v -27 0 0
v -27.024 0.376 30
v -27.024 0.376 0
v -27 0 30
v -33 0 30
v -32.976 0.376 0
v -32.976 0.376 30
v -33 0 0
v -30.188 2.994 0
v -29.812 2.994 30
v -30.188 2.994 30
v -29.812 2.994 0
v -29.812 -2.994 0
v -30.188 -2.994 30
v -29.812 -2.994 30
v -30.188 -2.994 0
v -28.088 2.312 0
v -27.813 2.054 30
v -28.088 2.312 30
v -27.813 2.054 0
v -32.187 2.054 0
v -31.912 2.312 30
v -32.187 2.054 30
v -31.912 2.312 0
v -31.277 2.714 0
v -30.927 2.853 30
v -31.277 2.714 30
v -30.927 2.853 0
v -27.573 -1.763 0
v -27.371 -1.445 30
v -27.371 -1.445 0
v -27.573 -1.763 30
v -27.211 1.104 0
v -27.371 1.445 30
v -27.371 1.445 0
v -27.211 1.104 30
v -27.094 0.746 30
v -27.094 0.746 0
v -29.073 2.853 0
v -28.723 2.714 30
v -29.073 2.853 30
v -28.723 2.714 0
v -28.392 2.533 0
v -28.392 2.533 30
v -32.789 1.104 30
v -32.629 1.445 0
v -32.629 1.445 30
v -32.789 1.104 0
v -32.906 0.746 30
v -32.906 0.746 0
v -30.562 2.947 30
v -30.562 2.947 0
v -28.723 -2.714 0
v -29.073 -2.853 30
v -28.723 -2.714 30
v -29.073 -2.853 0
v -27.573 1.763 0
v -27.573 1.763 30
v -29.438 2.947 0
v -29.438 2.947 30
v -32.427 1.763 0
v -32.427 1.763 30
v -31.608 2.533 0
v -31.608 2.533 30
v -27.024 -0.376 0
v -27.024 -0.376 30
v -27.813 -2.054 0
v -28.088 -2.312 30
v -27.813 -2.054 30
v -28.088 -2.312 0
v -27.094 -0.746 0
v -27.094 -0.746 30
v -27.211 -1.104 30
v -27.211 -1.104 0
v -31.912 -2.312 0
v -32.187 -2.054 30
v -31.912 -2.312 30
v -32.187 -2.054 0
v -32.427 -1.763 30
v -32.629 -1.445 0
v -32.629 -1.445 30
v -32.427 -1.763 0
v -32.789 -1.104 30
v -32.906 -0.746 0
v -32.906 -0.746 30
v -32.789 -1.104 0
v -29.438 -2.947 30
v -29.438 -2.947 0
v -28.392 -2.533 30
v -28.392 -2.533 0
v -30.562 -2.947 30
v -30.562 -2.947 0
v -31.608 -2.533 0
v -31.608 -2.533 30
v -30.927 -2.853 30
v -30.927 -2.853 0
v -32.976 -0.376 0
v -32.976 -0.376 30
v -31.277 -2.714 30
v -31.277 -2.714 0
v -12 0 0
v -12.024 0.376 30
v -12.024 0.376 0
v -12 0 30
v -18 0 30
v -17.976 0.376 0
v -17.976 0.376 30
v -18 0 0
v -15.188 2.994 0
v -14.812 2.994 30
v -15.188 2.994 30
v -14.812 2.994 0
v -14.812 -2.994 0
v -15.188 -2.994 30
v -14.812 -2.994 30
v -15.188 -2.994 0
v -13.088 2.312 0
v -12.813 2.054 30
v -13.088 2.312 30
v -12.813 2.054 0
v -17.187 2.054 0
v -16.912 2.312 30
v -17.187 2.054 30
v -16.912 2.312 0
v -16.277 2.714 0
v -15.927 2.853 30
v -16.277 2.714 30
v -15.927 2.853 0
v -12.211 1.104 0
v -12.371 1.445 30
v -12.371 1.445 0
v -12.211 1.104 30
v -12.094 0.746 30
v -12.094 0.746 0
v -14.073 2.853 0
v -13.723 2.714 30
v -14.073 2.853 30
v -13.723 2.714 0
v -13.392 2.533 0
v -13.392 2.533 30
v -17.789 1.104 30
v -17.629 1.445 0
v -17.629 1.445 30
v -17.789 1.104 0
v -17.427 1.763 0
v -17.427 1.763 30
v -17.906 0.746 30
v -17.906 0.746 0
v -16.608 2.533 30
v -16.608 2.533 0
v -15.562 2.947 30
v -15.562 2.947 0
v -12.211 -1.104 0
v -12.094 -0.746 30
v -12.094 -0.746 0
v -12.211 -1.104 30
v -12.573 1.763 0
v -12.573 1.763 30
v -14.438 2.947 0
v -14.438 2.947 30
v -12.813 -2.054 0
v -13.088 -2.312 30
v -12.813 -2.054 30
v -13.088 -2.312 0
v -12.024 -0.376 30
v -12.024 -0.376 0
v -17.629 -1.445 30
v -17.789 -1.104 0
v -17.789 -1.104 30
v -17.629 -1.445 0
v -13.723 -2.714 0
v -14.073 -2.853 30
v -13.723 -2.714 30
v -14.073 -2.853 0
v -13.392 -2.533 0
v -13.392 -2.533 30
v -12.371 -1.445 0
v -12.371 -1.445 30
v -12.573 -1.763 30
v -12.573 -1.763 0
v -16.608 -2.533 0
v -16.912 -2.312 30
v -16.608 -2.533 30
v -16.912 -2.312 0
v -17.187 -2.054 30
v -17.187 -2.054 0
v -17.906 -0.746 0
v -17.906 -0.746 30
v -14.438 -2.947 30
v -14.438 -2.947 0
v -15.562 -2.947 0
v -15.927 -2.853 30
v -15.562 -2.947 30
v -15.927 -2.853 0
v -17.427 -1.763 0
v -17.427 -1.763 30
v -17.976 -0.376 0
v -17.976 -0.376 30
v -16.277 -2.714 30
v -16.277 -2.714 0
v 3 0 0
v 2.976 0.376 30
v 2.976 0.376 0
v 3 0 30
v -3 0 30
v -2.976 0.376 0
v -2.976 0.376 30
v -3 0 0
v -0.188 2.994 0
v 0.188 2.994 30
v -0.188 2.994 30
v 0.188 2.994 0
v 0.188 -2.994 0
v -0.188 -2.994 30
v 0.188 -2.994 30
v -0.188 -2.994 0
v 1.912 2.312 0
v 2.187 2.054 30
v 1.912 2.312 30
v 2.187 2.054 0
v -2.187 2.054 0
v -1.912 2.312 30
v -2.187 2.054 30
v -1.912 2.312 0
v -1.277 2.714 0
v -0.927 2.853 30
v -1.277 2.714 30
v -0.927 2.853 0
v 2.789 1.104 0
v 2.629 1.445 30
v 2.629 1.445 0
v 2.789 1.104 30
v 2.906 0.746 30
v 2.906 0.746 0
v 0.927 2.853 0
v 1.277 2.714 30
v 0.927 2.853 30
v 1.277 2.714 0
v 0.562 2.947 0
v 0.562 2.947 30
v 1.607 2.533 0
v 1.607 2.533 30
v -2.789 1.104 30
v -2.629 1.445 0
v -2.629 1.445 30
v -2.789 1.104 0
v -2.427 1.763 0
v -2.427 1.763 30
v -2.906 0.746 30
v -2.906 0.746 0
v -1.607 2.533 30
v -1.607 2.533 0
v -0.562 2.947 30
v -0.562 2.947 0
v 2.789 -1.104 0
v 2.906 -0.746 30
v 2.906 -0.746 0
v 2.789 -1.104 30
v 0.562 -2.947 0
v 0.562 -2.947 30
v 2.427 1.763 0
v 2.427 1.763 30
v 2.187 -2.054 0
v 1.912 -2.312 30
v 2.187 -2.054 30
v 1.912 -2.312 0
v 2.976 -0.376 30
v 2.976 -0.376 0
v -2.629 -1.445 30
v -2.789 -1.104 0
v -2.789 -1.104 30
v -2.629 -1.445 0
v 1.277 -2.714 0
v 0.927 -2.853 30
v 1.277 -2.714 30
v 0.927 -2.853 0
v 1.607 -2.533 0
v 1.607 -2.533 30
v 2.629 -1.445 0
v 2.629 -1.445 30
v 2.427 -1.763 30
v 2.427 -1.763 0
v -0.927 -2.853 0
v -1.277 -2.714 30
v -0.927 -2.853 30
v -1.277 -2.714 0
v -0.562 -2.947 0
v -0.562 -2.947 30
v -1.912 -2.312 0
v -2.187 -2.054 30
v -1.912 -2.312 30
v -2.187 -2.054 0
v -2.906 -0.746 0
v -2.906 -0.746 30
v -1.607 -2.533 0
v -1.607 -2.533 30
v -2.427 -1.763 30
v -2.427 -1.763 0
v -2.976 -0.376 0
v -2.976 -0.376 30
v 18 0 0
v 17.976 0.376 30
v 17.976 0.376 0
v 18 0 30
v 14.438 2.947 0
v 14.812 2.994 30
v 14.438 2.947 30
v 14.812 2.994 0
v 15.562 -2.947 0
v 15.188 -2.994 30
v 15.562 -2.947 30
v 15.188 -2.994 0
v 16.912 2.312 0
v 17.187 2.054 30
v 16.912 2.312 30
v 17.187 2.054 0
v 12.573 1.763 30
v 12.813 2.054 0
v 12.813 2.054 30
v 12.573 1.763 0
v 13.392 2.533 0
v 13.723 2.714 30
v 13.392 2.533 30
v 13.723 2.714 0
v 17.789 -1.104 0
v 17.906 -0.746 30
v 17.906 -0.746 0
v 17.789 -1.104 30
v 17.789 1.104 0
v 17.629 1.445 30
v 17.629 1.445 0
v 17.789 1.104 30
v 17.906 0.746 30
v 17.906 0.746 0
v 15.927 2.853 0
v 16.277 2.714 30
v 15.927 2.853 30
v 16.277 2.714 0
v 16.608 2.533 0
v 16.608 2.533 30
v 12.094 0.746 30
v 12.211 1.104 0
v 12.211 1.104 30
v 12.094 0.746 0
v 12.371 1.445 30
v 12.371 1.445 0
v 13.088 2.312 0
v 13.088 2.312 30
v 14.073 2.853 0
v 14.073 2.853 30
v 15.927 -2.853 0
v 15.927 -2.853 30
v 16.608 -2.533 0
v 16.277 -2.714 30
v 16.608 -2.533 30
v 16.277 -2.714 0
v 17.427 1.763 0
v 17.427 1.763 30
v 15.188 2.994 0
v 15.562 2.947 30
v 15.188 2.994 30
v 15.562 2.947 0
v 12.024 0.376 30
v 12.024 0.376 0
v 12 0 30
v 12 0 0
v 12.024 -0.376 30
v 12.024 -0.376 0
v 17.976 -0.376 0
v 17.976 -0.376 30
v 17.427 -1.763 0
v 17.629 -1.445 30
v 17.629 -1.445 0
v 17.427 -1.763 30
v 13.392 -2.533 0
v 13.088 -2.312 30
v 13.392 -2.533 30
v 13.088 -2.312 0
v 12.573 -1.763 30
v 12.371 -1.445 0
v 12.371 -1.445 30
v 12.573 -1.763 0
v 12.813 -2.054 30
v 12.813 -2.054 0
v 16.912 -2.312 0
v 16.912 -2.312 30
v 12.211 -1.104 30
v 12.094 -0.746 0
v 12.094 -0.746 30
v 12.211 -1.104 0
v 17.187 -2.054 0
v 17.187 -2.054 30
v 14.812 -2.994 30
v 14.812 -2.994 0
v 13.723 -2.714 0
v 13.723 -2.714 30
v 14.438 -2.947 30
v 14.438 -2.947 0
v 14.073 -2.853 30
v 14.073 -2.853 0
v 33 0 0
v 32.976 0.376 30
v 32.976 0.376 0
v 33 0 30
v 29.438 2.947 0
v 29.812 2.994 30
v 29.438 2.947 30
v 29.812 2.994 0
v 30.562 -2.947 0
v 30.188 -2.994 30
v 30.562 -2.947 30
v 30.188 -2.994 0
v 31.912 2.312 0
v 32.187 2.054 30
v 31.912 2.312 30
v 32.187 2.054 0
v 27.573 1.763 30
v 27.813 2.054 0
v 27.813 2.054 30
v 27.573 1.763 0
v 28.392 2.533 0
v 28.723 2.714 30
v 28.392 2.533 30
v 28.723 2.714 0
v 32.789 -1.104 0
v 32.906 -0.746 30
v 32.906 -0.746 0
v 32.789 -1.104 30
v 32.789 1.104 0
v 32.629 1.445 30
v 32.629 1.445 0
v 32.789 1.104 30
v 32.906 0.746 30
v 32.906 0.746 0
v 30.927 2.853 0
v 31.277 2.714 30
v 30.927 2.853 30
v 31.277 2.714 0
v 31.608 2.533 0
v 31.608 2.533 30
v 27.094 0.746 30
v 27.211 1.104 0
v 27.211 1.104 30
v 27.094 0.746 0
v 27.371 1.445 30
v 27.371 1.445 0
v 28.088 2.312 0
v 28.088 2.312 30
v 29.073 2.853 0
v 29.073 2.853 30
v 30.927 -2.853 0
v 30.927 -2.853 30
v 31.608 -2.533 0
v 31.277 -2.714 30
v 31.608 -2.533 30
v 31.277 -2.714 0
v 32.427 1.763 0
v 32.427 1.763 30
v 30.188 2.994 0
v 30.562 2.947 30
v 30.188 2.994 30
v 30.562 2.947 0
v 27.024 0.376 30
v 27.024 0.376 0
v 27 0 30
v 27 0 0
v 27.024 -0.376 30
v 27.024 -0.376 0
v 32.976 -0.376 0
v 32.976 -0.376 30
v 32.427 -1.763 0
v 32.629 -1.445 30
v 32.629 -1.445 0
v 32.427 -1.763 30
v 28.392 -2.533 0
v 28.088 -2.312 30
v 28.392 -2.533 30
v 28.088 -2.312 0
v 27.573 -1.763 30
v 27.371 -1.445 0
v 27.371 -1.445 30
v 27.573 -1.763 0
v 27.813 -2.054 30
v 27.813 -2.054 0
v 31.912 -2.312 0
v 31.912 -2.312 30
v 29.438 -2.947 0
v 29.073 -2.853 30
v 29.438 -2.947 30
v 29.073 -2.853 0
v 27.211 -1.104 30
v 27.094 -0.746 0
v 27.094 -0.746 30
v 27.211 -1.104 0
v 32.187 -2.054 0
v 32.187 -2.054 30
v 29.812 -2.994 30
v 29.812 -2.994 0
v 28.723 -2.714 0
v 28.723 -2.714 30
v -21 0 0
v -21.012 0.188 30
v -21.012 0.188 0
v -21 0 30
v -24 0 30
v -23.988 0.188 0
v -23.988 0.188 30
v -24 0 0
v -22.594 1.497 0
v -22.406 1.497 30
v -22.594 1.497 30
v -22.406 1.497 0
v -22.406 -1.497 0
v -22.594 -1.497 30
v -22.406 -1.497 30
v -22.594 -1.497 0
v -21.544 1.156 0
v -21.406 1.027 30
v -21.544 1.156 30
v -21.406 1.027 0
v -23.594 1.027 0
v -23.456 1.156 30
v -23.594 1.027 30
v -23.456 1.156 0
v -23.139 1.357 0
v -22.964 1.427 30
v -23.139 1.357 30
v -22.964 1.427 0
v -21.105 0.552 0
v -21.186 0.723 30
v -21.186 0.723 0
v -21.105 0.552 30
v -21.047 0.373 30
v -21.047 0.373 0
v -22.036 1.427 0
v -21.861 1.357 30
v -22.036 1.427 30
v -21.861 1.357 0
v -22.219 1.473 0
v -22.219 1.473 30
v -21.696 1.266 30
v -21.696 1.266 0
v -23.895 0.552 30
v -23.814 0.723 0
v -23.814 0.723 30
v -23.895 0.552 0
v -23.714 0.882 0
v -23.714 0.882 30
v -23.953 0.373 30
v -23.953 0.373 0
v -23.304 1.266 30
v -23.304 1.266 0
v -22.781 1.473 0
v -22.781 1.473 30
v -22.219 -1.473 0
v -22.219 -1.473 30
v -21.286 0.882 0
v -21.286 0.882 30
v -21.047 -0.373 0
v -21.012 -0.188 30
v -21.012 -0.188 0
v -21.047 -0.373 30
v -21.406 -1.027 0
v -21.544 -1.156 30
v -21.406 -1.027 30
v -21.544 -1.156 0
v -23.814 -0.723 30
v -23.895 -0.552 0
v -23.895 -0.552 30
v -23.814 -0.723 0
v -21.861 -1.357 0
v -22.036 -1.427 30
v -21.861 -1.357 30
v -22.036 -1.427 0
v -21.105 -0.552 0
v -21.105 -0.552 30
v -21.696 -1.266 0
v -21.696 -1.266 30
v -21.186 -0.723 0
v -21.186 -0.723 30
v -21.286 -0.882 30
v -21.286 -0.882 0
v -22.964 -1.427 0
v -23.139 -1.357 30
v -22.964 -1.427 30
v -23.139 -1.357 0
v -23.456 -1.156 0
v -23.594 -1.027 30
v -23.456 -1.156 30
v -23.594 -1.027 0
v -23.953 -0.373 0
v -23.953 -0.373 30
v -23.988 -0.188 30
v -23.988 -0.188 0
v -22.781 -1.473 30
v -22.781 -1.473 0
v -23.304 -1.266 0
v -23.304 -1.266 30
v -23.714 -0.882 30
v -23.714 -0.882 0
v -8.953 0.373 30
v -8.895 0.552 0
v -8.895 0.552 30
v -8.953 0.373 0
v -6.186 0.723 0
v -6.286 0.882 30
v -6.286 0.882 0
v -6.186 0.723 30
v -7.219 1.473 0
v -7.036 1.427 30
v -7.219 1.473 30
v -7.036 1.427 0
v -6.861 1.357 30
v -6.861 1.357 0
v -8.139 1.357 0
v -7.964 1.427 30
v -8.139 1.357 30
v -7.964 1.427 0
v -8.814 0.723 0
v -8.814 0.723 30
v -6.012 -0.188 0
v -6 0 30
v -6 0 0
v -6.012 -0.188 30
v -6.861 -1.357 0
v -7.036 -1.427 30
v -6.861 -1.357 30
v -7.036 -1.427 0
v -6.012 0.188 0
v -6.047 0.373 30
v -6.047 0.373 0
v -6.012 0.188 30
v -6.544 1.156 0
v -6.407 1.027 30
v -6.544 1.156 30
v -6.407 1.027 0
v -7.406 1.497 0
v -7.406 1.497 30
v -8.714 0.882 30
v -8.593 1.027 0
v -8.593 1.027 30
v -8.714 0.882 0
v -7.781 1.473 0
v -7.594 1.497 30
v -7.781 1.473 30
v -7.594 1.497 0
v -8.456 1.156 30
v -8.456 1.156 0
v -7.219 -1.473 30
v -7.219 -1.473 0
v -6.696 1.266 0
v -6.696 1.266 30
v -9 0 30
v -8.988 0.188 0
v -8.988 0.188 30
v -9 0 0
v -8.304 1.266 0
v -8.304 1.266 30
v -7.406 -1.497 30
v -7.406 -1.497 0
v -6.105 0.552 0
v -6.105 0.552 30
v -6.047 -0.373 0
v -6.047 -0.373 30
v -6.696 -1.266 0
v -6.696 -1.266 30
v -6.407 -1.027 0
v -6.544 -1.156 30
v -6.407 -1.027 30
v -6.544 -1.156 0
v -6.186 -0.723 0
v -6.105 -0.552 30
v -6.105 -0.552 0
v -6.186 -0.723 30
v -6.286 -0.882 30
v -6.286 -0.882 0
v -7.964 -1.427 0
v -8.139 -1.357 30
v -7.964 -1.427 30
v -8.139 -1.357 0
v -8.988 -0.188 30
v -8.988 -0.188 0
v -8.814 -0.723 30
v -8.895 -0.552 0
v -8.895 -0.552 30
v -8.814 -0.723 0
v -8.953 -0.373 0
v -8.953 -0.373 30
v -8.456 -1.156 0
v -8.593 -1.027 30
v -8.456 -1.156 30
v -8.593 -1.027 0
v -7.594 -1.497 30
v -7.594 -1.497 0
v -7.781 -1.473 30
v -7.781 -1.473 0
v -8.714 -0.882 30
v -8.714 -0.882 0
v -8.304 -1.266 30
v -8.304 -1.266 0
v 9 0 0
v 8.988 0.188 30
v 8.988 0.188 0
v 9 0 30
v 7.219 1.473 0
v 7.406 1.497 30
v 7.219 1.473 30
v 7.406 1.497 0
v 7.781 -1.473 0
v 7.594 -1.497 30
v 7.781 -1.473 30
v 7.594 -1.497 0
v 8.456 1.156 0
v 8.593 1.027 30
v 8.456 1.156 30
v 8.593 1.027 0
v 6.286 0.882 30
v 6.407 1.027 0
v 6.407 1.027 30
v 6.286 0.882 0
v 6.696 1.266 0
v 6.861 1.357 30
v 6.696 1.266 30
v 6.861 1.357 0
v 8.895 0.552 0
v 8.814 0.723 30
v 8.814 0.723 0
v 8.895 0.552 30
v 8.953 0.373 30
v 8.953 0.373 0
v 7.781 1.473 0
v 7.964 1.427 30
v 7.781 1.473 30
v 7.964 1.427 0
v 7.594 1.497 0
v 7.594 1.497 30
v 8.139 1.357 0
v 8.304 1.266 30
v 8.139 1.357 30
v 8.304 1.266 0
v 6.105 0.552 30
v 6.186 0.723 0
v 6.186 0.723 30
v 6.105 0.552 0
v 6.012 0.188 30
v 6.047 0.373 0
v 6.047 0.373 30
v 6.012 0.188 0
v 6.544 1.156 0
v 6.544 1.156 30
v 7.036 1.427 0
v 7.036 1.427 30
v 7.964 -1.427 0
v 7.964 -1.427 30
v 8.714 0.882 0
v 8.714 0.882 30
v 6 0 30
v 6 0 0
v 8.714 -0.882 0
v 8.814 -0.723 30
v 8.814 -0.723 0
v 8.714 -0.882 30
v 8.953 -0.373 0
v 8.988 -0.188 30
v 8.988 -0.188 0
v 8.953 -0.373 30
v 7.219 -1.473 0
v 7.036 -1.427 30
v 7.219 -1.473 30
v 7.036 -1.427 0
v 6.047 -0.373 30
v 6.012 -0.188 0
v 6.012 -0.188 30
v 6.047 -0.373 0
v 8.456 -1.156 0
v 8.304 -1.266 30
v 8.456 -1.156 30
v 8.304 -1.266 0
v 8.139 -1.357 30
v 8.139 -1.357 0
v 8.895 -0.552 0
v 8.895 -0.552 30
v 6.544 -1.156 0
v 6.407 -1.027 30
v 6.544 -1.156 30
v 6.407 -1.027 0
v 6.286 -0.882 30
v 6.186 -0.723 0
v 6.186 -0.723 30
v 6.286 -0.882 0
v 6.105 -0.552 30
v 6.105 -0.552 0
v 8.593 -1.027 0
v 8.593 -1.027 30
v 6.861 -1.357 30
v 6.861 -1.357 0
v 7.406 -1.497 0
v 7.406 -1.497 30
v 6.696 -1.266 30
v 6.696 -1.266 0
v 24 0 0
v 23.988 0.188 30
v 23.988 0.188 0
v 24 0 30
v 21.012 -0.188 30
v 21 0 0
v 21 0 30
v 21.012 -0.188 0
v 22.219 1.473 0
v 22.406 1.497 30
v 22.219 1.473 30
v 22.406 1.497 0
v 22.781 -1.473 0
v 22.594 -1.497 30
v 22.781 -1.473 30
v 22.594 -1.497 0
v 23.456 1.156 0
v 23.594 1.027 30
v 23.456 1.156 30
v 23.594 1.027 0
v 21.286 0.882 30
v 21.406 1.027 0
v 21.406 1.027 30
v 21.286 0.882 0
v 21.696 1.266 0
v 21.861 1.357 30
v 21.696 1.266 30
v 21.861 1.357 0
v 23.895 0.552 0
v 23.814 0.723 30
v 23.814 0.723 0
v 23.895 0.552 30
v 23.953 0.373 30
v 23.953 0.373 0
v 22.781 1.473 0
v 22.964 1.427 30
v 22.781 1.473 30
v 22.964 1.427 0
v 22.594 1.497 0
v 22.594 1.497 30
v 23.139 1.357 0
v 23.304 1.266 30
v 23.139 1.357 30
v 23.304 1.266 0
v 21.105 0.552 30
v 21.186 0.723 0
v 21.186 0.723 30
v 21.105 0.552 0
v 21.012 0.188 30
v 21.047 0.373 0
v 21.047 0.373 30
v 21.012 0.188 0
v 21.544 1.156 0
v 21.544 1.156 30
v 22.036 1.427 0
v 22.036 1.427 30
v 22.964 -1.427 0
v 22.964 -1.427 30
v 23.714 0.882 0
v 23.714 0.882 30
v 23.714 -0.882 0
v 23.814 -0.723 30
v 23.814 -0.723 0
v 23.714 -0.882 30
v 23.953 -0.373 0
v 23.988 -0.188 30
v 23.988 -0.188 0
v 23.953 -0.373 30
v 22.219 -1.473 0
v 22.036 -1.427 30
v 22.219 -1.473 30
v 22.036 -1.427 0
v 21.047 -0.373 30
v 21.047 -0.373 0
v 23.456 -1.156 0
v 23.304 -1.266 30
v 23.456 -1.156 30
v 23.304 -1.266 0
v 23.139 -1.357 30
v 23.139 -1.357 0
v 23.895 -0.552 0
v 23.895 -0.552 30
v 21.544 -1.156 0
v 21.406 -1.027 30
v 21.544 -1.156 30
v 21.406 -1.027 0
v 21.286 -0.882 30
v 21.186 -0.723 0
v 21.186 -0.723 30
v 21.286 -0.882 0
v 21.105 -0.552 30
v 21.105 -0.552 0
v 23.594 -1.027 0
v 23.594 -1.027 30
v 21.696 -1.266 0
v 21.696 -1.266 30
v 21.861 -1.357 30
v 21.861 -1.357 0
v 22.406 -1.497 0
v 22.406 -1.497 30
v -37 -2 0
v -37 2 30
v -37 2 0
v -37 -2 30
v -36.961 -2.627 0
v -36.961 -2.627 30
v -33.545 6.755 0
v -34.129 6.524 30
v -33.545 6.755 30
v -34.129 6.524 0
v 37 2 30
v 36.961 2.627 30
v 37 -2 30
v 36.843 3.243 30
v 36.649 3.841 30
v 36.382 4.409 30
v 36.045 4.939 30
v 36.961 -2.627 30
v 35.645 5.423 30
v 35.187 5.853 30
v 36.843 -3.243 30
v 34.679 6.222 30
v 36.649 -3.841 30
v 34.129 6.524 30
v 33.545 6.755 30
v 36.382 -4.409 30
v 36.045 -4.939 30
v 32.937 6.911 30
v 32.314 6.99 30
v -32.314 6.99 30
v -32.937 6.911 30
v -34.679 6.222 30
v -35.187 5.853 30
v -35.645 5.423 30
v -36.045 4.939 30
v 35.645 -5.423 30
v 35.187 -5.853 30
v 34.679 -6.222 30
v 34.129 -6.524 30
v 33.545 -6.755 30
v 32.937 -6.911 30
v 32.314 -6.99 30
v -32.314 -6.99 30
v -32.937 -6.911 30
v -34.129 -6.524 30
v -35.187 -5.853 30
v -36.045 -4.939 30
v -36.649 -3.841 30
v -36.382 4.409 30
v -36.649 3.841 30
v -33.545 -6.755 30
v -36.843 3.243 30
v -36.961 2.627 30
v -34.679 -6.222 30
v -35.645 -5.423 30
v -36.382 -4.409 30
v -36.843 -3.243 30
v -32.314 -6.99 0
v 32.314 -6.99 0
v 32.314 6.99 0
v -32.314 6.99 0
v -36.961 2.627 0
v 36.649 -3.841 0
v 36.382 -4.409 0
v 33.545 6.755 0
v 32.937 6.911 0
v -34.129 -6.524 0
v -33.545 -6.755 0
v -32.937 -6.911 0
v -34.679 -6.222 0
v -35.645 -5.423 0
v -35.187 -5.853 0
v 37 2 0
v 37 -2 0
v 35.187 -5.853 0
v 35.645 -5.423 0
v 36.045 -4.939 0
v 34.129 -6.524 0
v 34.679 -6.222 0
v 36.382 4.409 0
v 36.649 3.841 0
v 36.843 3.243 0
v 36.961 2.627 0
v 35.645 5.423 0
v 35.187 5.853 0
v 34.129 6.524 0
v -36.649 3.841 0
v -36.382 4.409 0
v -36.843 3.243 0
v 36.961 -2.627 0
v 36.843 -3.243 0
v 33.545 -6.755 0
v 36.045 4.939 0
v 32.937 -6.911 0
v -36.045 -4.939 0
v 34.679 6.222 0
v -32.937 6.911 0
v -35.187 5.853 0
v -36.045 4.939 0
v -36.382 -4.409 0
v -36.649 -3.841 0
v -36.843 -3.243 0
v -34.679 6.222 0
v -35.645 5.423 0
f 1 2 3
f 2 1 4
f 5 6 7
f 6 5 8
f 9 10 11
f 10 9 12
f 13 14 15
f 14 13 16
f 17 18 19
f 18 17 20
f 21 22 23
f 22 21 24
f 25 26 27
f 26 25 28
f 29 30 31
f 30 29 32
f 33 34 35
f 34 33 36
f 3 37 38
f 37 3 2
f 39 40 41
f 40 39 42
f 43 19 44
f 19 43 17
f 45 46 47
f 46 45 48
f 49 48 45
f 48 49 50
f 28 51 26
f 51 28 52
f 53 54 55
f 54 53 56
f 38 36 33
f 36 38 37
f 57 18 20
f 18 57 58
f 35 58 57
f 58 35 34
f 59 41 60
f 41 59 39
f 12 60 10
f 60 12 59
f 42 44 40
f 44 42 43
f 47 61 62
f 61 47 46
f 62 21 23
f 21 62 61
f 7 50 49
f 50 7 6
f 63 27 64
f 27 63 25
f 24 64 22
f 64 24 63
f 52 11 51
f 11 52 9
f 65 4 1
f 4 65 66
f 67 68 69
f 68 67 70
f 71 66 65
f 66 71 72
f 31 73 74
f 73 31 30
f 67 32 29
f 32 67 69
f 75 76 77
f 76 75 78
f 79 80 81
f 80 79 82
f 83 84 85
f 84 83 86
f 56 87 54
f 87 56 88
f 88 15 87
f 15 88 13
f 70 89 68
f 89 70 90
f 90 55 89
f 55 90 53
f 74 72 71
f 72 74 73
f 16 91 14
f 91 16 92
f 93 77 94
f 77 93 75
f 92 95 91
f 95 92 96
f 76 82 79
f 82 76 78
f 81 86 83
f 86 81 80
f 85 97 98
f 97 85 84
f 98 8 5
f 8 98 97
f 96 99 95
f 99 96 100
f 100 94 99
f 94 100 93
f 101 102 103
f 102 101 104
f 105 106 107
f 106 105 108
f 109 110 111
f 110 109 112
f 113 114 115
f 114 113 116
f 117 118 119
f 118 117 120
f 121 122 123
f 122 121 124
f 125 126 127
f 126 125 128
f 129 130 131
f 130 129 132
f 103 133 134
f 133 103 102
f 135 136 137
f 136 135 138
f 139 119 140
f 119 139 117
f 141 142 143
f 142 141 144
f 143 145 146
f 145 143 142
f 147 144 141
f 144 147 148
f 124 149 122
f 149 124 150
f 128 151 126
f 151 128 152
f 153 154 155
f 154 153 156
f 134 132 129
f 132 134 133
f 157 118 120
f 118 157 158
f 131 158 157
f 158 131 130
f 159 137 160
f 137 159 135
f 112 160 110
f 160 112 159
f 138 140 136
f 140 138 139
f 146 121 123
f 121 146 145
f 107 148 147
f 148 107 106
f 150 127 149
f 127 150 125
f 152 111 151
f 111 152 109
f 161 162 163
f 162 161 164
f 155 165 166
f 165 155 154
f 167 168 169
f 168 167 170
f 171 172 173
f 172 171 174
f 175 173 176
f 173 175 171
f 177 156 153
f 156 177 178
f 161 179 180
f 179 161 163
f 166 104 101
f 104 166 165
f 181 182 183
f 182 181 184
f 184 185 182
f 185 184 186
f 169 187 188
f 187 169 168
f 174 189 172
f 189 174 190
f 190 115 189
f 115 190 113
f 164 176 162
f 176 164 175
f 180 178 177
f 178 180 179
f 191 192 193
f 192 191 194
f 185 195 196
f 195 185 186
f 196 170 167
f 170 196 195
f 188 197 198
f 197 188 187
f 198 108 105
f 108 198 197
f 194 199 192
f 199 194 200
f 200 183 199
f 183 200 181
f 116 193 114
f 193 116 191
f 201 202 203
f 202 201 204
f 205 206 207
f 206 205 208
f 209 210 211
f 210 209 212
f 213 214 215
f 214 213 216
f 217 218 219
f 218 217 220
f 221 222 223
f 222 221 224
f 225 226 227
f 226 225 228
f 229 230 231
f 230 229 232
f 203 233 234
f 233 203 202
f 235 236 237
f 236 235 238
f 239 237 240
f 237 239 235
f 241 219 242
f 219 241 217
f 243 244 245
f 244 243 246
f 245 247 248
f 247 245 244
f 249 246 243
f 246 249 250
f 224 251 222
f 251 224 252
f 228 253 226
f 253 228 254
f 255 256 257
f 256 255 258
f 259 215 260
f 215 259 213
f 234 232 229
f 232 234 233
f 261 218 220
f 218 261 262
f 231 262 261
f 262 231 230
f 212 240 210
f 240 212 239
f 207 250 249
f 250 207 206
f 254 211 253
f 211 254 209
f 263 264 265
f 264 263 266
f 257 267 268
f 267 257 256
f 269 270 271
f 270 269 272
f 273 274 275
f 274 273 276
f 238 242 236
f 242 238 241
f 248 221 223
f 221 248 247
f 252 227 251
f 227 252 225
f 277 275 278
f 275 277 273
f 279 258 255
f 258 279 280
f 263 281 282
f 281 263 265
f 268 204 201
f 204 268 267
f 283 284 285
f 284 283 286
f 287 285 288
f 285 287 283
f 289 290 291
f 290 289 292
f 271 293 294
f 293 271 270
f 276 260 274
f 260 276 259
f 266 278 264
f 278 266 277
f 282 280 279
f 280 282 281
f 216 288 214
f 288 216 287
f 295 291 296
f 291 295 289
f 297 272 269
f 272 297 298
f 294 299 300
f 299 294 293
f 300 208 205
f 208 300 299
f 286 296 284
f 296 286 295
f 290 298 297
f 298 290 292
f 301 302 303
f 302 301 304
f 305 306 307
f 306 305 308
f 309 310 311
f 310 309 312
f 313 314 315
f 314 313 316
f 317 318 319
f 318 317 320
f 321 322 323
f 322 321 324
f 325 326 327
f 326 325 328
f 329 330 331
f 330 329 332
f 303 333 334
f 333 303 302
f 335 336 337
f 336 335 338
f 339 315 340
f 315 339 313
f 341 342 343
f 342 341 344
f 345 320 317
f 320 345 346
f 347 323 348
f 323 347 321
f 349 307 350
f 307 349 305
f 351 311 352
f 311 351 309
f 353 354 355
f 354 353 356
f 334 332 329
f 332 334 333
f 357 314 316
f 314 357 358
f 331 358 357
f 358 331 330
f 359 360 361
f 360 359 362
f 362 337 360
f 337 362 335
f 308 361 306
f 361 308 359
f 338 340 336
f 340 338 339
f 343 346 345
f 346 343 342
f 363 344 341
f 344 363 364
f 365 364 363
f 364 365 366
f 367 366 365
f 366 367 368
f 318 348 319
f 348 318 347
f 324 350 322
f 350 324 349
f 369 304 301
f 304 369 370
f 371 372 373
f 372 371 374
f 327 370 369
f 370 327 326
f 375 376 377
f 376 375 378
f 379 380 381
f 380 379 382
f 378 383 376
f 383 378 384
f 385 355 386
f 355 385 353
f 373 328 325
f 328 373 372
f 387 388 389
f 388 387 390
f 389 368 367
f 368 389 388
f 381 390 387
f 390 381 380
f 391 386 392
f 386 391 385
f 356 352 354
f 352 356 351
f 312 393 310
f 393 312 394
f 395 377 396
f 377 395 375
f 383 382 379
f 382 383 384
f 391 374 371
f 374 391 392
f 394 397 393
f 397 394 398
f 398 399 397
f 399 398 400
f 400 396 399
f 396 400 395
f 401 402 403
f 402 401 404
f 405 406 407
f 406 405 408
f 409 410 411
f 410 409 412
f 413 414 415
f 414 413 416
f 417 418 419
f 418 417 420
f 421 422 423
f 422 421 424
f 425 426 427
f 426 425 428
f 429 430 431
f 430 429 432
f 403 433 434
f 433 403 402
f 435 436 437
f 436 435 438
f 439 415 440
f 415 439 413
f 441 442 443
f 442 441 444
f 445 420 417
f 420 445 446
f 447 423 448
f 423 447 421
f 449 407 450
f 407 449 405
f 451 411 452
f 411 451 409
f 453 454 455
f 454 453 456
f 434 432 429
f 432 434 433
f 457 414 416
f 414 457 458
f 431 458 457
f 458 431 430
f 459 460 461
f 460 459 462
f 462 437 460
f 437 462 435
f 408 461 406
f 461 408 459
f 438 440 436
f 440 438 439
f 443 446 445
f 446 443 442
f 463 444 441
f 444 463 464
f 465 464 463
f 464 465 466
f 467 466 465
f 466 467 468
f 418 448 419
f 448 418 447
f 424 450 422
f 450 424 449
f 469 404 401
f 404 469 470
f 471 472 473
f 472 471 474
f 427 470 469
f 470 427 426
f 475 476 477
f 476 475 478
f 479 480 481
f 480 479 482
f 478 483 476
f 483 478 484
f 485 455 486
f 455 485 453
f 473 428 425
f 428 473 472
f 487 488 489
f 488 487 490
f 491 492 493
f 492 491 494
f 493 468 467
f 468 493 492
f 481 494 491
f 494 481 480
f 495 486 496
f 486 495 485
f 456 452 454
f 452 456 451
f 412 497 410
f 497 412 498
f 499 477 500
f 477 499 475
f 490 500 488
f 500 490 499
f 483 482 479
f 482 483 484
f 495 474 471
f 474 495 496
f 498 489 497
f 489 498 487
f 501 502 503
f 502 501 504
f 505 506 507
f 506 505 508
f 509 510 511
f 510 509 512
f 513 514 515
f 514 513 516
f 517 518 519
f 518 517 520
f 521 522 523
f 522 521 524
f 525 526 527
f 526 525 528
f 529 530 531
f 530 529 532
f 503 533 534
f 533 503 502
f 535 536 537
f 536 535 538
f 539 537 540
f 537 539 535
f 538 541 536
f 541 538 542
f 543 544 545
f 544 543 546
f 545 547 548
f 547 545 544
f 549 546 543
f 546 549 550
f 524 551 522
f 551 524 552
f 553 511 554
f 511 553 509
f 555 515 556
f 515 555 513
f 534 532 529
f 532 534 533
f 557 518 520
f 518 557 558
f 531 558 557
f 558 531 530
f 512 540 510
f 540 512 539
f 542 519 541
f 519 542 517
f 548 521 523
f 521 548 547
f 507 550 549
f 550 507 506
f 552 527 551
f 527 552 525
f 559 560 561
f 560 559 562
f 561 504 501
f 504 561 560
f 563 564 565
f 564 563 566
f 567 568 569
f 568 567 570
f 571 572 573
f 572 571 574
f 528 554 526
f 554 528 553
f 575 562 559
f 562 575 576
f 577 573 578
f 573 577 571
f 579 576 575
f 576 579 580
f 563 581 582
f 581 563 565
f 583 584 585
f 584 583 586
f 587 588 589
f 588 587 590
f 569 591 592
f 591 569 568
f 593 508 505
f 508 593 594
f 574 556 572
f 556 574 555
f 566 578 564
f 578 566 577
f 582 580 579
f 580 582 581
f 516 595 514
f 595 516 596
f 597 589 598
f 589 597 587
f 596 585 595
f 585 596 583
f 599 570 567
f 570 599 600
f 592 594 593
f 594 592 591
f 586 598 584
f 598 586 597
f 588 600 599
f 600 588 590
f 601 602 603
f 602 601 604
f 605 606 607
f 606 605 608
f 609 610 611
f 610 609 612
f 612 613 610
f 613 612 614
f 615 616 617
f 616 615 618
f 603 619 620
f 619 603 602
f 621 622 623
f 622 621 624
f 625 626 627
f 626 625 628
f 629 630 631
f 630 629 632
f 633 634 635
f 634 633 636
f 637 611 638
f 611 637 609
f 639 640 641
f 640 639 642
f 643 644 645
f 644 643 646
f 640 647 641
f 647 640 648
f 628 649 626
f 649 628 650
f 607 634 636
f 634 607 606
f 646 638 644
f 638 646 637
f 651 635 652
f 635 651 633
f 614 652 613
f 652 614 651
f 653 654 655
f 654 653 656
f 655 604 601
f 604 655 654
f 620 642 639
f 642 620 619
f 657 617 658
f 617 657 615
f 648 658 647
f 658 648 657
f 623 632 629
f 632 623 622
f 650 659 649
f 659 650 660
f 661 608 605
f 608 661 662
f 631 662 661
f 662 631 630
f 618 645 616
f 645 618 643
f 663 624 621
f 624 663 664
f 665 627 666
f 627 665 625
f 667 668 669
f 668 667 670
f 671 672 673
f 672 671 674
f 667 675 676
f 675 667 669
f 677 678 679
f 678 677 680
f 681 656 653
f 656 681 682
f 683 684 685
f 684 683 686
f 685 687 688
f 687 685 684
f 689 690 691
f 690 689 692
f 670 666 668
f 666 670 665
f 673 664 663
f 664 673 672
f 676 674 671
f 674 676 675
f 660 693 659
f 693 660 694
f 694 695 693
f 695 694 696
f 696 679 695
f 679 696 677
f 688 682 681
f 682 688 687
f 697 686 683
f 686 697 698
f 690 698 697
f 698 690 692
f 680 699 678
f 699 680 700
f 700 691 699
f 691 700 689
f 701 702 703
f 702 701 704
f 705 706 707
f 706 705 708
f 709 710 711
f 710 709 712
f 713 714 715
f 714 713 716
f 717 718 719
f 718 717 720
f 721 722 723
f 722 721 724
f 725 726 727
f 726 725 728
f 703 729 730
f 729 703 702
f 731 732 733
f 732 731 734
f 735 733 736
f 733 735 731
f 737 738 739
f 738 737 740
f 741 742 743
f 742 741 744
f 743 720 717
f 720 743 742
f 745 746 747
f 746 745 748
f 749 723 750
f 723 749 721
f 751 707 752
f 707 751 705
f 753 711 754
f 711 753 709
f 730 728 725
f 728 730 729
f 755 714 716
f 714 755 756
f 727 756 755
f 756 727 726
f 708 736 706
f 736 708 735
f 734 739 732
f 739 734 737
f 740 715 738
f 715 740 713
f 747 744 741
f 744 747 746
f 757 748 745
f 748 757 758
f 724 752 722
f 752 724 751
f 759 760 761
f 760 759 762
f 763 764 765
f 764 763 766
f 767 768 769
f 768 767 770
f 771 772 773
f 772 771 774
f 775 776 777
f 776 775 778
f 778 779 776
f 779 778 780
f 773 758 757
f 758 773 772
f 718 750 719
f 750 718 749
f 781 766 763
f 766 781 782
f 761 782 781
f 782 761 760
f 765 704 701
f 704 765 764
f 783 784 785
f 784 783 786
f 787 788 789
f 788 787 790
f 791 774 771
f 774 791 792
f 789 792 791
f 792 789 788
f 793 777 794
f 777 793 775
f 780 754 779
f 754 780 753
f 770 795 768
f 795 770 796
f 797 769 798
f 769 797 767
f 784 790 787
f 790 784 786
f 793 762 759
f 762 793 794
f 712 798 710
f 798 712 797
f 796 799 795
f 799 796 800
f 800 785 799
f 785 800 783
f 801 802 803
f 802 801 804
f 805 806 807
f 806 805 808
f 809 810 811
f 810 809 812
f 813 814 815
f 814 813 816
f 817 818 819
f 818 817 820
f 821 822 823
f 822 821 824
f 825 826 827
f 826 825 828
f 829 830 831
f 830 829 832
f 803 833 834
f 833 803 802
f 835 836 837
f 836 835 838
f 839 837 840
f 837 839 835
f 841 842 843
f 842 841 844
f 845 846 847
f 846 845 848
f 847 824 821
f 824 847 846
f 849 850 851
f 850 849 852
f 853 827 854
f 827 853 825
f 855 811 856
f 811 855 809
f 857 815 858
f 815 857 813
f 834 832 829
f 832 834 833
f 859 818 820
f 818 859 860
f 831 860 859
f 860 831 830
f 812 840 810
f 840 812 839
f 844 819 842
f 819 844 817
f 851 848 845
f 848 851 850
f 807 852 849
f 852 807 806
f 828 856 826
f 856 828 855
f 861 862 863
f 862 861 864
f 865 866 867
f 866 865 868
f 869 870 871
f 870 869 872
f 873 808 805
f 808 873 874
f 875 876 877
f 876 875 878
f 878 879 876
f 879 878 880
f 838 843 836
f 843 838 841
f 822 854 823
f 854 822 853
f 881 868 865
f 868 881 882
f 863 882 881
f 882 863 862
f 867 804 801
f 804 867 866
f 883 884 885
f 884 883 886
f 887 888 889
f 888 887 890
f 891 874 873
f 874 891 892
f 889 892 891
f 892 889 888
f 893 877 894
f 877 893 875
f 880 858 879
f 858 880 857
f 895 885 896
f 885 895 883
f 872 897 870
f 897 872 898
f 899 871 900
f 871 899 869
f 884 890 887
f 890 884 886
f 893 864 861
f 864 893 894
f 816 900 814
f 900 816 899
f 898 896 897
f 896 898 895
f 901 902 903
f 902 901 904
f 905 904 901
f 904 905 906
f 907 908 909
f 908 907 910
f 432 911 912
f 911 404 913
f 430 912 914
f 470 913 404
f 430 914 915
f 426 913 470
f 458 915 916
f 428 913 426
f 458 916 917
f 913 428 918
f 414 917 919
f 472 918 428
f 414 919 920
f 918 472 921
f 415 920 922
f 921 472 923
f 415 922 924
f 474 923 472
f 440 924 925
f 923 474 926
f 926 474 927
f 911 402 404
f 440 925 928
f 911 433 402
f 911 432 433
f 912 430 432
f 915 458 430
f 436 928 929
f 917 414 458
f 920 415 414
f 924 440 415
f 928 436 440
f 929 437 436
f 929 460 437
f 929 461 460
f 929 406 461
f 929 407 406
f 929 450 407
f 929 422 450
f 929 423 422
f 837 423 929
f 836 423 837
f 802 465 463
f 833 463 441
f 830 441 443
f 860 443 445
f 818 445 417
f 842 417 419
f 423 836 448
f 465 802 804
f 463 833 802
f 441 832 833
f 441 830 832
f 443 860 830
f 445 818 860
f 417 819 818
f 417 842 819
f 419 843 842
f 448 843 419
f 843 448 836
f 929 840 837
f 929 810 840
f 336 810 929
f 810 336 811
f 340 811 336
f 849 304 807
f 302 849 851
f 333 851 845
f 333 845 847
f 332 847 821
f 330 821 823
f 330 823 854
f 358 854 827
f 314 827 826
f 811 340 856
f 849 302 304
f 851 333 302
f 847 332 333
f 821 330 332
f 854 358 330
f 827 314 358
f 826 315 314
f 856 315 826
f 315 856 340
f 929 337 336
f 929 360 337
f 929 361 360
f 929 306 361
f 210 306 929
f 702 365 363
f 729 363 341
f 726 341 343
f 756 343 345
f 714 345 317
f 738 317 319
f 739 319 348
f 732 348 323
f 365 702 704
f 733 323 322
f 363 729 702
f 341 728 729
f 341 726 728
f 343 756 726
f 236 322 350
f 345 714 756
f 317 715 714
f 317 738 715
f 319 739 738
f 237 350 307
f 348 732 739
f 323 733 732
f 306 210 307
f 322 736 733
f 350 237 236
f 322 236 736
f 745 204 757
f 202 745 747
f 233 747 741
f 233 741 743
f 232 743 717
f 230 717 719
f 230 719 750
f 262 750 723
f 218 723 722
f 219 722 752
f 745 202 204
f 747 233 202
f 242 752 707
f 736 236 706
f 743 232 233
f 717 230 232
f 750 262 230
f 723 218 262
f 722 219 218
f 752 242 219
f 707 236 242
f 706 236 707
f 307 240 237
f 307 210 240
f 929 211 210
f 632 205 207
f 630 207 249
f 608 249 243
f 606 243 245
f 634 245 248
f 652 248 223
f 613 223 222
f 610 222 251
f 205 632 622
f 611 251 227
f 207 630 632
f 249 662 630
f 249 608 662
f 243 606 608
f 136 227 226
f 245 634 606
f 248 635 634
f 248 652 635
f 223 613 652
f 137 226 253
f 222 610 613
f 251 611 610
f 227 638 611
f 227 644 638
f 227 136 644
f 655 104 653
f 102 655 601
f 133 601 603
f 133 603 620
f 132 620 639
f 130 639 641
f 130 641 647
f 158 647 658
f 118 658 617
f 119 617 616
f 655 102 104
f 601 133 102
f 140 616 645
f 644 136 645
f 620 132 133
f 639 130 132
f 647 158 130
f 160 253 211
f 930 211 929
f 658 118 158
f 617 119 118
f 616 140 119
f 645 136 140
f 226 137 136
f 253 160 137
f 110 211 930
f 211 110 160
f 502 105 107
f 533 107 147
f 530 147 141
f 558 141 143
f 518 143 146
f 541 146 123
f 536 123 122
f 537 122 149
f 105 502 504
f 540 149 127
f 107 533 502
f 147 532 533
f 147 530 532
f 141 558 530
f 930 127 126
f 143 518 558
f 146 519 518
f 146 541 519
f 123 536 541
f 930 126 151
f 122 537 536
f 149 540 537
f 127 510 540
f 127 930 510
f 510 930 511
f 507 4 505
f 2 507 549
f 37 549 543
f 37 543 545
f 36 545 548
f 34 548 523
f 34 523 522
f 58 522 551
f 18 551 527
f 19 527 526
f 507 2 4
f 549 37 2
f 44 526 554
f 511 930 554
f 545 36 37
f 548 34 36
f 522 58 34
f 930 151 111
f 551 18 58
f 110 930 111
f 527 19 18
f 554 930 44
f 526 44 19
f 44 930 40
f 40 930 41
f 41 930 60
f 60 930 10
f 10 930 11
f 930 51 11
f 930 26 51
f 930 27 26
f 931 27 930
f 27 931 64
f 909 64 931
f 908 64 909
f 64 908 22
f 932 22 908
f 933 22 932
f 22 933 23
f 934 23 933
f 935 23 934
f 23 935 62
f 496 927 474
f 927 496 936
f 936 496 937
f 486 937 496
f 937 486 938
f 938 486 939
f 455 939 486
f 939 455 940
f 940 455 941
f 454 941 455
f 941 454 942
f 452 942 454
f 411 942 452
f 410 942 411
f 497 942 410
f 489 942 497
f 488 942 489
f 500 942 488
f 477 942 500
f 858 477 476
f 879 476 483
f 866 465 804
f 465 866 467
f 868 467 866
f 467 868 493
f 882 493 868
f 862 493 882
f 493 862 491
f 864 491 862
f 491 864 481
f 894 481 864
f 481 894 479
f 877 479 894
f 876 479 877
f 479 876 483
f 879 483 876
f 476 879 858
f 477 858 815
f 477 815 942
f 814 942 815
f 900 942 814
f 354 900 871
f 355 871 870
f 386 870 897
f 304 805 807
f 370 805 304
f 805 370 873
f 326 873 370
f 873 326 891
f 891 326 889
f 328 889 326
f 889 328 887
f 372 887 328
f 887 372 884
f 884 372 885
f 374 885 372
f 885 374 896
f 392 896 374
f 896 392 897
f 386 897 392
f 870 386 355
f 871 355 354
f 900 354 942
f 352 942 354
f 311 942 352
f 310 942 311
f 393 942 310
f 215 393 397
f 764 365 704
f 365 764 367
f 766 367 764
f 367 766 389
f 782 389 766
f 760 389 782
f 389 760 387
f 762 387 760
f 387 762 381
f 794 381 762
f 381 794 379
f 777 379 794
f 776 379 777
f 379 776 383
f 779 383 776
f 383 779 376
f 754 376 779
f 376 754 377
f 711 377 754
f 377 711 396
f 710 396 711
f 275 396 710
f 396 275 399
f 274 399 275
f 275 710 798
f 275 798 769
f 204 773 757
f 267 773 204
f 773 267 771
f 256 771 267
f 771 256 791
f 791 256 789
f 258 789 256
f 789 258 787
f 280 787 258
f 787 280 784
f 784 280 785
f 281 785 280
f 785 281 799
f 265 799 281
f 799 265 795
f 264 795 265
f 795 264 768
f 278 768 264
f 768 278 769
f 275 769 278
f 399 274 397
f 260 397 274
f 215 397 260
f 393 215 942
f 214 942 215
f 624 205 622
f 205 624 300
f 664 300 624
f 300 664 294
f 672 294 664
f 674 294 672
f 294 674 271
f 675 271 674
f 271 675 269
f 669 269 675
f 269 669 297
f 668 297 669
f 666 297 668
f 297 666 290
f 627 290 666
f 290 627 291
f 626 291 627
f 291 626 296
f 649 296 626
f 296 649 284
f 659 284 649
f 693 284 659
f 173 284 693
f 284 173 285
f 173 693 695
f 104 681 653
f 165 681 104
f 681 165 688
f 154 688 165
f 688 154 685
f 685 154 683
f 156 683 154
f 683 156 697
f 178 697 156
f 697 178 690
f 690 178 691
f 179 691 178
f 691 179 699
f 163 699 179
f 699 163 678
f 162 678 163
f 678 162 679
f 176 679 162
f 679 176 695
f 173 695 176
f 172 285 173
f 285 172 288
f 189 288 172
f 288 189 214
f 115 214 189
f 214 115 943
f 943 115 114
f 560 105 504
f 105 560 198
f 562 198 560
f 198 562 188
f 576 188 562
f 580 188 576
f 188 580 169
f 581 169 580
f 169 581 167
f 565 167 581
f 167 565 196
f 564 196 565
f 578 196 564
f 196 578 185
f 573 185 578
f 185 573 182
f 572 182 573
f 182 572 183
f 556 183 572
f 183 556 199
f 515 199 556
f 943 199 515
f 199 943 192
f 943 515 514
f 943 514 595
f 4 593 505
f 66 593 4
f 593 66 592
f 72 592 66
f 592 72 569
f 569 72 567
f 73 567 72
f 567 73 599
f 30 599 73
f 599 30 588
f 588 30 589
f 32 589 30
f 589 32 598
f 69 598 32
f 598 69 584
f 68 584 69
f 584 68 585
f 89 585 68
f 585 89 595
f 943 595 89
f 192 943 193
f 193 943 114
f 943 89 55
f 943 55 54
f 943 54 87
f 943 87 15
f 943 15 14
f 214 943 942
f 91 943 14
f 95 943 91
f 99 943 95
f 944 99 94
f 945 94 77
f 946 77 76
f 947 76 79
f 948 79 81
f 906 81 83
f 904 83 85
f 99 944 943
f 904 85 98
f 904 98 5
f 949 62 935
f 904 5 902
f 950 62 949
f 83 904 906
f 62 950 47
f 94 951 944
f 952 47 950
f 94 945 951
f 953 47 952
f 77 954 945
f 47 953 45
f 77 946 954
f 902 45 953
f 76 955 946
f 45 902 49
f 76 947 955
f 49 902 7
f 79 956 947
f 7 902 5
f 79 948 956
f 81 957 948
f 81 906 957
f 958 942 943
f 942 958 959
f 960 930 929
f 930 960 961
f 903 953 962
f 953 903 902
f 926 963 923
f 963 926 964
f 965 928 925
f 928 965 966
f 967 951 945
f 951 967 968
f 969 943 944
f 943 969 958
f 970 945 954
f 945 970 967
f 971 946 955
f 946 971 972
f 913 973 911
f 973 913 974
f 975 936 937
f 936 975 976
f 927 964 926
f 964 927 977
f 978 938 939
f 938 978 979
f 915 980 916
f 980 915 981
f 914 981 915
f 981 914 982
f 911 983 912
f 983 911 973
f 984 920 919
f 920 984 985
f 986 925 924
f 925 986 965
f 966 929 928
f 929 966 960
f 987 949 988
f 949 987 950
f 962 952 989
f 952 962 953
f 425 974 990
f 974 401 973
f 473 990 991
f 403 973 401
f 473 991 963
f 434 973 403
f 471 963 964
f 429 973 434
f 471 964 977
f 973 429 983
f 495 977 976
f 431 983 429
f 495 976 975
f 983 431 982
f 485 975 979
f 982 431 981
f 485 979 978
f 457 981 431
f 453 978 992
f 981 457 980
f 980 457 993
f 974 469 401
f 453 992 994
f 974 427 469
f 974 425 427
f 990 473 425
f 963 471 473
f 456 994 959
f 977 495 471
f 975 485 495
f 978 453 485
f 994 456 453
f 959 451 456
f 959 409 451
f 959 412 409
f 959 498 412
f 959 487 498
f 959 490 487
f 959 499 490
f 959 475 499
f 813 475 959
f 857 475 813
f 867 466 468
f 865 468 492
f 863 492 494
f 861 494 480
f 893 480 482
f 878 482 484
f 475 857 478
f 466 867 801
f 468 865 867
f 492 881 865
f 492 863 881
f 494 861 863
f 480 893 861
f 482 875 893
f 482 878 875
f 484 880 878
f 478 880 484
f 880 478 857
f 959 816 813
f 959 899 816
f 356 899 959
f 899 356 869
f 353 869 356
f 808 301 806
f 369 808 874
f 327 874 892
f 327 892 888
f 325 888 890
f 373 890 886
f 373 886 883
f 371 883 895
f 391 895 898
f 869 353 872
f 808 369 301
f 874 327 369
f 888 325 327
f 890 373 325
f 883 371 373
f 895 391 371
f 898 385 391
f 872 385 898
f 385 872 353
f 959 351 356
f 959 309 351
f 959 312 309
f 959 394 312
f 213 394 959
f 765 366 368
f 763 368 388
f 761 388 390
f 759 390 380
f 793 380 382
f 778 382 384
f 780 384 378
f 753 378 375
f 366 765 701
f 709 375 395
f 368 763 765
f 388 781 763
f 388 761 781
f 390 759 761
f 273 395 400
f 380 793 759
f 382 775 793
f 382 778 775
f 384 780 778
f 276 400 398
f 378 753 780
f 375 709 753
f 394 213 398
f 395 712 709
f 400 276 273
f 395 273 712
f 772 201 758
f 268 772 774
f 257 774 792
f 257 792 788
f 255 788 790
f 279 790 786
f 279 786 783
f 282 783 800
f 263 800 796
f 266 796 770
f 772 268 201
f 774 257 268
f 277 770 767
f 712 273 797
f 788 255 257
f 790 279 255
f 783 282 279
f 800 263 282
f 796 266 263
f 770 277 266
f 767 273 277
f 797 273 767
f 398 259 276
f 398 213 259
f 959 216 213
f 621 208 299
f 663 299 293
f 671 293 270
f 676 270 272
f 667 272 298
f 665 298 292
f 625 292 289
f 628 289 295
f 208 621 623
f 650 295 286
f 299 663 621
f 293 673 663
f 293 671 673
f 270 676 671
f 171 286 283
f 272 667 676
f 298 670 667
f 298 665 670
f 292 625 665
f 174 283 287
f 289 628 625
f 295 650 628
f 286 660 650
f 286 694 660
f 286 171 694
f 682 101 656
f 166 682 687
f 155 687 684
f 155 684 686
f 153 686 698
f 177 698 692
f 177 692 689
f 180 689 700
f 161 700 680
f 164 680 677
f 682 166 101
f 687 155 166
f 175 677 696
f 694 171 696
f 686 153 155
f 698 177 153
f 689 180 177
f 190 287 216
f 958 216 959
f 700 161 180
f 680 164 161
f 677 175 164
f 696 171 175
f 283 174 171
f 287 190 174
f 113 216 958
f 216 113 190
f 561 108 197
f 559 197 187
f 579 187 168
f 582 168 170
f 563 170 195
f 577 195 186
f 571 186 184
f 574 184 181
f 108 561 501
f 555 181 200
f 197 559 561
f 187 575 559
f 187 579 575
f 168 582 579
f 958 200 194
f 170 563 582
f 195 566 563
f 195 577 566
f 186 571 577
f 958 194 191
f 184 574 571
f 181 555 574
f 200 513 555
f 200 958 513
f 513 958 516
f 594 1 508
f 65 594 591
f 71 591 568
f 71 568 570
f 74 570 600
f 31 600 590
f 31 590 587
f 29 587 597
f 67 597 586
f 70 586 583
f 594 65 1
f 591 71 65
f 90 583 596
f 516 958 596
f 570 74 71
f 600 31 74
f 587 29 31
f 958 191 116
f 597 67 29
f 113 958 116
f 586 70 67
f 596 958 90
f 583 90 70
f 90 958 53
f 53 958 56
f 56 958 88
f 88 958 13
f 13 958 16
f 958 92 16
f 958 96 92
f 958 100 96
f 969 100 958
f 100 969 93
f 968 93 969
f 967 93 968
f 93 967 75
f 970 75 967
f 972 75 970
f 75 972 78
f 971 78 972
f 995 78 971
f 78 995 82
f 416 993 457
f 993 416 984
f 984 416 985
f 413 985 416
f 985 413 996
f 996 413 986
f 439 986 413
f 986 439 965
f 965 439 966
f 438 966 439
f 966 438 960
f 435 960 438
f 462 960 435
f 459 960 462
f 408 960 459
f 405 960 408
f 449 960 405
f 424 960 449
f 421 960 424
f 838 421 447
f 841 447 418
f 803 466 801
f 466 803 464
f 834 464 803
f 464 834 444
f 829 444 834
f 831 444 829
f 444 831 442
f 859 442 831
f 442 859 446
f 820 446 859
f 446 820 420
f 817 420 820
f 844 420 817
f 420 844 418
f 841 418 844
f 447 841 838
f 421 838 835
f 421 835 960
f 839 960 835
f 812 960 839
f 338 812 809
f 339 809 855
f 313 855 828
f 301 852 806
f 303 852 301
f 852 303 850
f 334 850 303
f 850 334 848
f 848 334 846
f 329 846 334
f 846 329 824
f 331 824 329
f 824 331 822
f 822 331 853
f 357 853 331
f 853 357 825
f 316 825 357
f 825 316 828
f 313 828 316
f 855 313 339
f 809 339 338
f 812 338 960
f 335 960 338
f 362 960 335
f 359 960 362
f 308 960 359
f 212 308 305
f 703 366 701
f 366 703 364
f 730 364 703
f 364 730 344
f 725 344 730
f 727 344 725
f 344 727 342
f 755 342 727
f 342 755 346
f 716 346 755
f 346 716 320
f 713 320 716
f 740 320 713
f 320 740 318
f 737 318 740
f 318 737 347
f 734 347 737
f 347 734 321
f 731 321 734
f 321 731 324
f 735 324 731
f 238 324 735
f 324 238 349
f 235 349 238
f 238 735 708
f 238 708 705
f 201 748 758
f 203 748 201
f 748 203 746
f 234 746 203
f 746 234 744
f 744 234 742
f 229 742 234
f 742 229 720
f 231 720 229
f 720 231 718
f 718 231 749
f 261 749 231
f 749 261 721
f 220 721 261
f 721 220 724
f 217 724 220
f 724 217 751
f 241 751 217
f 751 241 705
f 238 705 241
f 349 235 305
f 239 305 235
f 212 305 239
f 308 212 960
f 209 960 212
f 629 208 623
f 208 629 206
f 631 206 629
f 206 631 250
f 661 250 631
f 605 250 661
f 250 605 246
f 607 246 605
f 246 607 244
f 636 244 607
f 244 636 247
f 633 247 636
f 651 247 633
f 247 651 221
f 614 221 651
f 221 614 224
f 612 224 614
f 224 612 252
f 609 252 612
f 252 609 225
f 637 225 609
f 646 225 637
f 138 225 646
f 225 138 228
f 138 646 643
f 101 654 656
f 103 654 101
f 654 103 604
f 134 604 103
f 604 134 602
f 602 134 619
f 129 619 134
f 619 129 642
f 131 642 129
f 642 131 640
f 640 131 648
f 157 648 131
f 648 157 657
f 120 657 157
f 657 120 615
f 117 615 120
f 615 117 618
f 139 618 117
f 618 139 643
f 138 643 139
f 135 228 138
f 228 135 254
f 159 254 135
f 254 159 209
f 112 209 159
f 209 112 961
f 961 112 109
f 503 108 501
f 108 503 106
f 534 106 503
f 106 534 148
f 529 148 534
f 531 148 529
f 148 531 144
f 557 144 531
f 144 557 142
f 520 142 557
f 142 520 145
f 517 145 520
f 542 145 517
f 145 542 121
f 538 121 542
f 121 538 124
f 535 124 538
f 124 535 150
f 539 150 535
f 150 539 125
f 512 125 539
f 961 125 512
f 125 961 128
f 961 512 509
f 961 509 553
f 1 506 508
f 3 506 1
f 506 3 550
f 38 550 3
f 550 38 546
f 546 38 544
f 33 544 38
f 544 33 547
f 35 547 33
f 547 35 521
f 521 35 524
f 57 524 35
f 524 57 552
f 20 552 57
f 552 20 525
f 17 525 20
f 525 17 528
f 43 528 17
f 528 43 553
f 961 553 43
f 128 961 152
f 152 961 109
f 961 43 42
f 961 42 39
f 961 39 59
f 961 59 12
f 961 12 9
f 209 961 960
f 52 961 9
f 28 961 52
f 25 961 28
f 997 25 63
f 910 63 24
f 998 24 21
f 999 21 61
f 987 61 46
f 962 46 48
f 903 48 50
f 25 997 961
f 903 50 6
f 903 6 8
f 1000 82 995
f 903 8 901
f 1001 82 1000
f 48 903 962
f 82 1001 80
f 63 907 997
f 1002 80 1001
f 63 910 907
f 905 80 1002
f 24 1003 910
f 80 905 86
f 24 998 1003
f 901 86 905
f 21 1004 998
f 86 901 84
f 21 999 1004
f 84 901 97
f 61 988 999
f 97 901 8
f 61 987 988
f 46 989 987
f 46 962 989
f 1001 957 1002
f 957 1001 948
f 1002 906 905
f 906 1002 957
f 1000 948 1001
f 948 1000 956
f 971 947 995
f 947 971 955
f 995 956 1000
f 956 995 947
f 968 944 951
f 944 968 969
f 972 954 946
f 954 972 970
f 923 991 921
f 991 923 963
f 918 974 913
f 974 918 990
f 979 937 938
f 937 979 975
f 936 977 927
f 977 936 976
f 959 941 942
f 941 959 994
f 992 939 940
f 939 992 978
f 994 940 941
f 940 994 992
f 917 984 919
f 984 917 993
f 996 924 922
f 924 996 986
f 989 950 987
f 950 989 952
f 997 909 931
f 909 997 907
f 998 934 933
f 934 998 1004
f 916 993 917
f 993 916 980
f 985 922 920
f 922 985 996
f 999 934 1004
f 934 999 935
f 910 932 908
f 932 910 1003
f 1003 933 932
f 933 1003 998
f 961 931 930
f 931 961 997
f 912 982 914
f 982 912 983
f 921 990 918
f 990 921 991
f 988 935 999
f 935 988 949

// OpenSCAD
$fn = 50;


difference() {
	union() {
		*color(alpha = 1.0000000000, c = "gray") {
			translate(v = [0, 7, 0]) {
				linear_extrude(height = 1) {
					text(font = "Arial:style=Bold", halign = "center", size = 4.5000000000, text = "COMMENT plate main", valign = "center");
				}
			}
		}
		hull() {
			translate(v = [-32.0000000000, 2.0000000000, 0]) {
				cylinder(h = 30, r = 5);
			}
			translate(v = [32.0000000000, 2.0000000000, 0]) {
				cylinder(h = 30, r = 5);
			}
			translate(v = [-32.0000000000, -2.0000000000, 0]) {
				cylinder(h = 30, r = 5);
			}
			translate(v = [32.0000000000, -2.0000000000, 0]) {
				cylinder(h = 30, r = 5);
			}
		}
	}
	union() {
		*color(alpha = 1.0000000000, c = "gray") {
			translate(v = [0, 7, 0]) {
				linear_extrude(height = 1) {
					text(font = "Arial:style=Bold", halign = "center", size = 4.5000000000, text = "COMMENT holes main", valign = "center");
				}
			}
		}
		translate(v = [-30.0000000000, 0.0000000000, 0]) {
			translate(v = [0, 0, -100]) {
				cylinder(h = 200, r = 3.0000000000);
			}
		}
		translate(v = [-15.0000000000, 0.0000000000, 0]) {
			translate(v = [0, 0, -100]) {
				cylinder(h = 200, r = 3.0000000000);
			}
		}
		translate(v = [0, 0, -100]) {
			cylinder(h = 200, r = 3.0000000000);
		}
		translate(v = [15.0000000000, 0.0000000000, 0]) {
			translate(v = [0, 0, -100]) {
				cylinder(h = 200, r = 3.0000000000);
			}
		}
		translate(v = [30.0000000000, 0.0000000000, 0]) {
			translate(v = [0, 0, -100]) {
				cylinder(h = 200, r = 3.0000000000);
			}
		}
		translate(v = [-30.0000000000, 0.0000000000, 0]) {
			translate(v = [0, 0, -100]) {
				cylinder(h = 200, r = 1.5000000000);
			}
		}
		translate(v = [-22.5000000000, 0.0000000000, 0]) {
			translate(v = [0, 0, -100]) {
				cylinder(h = 200, r = 1.5000000000);
			}
		}
		translate(v = [-15.0000000000, 0.0000000000, 0]) {
			translate(v = [0, 0, -100]) {
				cylinder(h = 200, r = 1.5000000000);
			}
		}
		translate(v = [-7.5000000000, 0.0000000000, 0]) {
			translate(v = [0, 0, -100]) {
				cylinder(h = 200, r = 1.5000000000);
			}
		}
		translate(v = [0, 0, -100]) {
			cylinder(h = 200, r = 1.5000000000);
		}
		translate(v = [7.5000000000, 0.0000000000, 0]) {
			translate(v = [0, 0, -100]) {
				cylinder(h = 200, r = 1.5000000000);
			}
		}
		translate(v = [15.0000000000, 0.0000000000, 0]) {
			translate(v = [0, 0, -100]) {
				cylinder(h = 200, r = 1.5000000000);
			}
		}
		translate(v = [22.5000000000, 0.0000000000, 0]) {
			translate(v = [0, 0, -100]) {
				cylinder(h = 200, r = 1.5000000000);
			}
		}
		translate(v = [30.0000000000, 0.0000000000, 0]) {
			translate(v = [0, 0, -100]) {
				cylinder(h = 200, r = 1.5000000000);
			}
		}
	}
}
